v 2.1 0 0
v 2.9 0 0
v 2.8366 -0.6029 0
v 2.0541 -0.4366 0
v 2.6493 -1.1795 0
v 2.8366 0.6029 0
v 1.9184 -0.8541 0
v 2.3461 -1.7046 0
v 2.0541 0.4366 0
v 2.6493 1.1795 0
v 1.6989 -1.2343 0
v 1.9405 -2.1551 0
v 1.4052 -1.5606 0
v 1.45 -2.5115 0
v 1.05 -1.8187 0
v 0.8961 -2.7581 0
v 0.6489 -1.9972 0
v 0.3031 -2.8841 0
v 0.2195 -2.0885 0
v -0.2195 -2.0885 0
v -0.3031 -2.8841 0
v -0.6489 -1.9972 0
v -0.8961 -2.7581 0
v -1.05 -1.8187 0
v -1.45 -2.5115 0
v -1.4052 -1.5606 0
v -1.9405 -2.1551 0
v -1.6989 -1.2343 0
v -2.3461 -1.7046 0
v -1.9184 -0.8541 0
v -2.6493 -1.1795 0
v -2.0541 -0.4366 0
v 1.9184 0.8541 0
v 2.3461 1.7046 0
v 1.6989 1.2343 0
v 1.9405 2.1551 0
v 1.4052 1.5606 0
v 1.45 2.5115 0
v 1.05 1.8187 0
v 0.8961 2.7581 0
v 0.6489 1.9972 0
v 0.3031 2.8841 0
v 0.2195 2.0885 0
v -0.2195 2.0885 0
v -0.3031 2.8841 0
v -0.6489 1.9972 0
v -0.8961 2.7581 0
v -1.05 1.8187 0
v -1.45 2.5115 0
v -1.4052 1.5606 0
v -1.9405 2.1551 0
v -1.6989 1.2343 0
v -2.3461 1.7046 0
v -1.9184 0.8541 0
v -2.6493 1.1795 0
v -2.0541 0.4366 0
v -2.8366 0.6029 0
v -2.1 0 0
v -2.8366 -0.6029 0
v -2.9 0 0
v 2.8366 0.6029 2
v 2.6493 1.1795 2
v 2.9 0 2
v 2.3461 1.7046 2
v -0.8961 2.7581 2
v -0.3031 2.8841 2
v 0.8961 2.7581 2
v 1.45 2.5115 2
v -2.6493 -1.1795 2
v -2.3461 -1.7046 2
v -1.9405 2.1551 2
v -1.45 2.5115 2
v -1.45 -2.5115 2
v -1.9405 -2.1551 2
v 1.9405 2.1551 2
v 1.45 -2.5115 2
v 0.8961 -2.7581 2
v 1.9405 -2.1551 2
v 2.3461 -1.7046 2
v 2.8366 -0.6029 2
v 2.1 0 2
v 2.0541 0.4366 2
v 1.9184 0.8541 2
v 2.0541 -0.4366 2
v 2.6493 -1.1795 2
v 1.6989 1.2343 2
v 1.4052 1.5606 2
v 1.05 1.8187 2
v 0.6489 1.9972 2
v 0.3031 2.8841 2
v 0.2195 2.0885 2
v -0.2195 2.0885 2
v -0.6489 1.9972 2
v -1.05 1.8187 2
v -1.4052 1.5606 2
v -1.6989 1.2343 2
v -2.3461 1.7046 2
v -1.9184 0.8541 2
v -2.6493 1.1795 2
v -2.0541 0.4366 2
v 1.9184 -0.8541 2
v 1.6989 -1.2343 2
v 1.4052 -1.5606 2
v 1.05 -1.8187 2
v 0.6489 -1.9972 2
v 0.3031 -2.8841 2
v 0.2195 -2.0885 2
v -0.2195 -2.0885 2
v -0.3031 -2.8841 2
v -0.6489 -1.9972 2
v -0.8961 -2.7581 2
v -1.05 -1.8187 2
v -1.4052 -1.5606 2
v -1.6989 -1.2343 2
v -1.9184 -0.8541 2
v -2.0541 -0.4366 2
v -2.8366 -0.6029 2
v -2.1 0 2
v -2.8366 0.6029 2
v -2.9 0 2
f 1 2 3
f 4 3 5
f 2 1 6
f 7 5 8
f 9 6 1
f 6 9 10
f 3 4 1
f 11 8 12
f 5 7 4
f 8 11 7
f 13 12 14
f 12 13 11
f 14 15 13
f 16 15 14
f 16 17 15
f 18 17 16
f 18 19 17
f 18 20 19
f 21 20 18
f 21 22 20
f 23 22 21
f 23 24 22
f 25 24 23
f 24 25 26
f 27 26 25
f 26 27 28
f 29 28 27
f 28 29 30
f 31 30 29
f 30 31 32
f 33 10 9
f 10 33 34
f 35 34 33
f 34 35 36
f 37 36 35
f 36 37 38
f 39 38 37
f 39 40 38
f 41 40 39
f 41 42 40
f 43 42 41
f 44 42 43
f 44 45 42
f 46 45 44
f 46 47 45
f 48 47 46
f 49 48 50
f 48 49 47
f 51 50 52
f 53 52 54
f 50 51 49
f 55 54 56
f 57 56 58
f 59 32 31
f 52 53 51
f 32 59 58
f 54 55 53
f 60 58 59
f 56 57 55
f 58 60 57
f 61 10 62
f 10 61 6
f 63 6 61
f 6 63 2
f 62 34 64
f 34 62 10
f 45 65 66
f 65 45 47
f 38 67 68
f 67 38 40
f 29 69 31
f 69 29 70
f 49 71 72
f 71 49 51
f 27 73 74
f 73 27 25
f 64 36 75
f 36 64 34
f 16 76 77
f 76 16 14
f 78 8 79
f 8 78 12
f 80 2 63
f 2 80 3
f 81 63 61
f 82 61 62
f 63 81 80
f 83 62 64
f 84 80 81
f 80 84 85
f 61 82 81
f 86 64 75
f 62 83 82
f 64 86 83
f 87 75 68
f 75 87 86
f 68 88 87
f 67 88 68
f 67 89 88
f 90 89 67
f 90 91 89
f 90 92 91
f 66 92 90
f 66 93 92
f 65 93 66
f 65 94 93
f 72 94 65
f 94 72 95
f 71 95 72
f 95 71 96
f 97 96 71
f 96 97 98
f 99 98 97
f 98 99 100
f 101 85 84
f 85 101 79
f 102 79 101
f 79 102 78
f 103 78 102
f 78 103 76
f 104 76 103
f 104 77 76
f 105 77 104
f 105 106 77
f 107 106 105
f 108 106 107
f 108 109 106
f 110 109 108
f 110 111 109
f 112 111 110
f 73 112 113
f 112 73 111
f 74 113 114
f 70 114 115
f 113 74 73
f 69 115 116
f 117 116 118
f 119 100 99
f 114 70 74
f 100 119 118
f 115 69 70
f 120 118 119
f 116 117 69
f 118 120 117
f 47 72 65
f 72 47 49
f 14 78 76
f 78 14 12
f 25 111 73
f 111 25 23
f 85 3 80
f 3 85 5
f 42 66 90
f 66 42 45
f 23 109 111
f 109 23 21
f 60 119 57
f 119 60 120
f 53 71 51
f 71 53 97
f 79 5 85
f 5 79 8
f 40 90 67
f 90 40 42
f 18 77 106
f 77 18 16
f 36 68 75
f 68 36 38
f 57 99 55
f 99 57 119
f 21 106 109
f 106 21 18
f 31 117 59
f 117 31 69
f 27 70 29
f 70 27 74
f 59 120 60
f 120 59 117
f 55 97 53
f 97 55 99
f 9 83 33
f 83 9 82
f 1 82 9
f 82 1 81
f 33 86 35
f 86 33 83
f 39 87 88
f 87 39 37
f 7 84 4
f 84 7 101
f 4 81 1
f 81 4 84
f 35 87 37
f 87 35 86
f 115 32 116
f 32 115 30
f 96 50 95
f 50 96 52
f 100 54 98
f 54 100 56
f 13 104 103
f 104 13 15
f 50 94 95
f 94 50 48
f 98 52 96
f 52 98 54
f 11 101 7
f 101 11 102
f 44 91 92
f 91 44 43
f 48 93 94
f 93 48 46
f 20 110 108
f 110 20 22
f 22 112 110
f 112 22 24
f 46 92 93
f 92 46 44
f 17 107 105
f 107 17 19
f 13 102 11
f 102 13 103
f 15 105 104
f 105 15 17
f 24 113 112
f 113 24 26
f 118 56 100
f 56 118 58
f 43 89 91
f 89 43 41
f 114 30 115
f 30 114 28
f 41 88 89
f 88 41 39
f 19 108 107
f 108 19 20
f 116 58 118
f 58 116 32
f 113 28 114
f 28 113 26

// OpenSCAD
$fn = 30;

difference() {
    cylinder(h = 2, d = 5.8);
    translate([0, 0, -0.5]) {
        cylinder(h = 3, d = 3.8 + 0.4);
    }
}
